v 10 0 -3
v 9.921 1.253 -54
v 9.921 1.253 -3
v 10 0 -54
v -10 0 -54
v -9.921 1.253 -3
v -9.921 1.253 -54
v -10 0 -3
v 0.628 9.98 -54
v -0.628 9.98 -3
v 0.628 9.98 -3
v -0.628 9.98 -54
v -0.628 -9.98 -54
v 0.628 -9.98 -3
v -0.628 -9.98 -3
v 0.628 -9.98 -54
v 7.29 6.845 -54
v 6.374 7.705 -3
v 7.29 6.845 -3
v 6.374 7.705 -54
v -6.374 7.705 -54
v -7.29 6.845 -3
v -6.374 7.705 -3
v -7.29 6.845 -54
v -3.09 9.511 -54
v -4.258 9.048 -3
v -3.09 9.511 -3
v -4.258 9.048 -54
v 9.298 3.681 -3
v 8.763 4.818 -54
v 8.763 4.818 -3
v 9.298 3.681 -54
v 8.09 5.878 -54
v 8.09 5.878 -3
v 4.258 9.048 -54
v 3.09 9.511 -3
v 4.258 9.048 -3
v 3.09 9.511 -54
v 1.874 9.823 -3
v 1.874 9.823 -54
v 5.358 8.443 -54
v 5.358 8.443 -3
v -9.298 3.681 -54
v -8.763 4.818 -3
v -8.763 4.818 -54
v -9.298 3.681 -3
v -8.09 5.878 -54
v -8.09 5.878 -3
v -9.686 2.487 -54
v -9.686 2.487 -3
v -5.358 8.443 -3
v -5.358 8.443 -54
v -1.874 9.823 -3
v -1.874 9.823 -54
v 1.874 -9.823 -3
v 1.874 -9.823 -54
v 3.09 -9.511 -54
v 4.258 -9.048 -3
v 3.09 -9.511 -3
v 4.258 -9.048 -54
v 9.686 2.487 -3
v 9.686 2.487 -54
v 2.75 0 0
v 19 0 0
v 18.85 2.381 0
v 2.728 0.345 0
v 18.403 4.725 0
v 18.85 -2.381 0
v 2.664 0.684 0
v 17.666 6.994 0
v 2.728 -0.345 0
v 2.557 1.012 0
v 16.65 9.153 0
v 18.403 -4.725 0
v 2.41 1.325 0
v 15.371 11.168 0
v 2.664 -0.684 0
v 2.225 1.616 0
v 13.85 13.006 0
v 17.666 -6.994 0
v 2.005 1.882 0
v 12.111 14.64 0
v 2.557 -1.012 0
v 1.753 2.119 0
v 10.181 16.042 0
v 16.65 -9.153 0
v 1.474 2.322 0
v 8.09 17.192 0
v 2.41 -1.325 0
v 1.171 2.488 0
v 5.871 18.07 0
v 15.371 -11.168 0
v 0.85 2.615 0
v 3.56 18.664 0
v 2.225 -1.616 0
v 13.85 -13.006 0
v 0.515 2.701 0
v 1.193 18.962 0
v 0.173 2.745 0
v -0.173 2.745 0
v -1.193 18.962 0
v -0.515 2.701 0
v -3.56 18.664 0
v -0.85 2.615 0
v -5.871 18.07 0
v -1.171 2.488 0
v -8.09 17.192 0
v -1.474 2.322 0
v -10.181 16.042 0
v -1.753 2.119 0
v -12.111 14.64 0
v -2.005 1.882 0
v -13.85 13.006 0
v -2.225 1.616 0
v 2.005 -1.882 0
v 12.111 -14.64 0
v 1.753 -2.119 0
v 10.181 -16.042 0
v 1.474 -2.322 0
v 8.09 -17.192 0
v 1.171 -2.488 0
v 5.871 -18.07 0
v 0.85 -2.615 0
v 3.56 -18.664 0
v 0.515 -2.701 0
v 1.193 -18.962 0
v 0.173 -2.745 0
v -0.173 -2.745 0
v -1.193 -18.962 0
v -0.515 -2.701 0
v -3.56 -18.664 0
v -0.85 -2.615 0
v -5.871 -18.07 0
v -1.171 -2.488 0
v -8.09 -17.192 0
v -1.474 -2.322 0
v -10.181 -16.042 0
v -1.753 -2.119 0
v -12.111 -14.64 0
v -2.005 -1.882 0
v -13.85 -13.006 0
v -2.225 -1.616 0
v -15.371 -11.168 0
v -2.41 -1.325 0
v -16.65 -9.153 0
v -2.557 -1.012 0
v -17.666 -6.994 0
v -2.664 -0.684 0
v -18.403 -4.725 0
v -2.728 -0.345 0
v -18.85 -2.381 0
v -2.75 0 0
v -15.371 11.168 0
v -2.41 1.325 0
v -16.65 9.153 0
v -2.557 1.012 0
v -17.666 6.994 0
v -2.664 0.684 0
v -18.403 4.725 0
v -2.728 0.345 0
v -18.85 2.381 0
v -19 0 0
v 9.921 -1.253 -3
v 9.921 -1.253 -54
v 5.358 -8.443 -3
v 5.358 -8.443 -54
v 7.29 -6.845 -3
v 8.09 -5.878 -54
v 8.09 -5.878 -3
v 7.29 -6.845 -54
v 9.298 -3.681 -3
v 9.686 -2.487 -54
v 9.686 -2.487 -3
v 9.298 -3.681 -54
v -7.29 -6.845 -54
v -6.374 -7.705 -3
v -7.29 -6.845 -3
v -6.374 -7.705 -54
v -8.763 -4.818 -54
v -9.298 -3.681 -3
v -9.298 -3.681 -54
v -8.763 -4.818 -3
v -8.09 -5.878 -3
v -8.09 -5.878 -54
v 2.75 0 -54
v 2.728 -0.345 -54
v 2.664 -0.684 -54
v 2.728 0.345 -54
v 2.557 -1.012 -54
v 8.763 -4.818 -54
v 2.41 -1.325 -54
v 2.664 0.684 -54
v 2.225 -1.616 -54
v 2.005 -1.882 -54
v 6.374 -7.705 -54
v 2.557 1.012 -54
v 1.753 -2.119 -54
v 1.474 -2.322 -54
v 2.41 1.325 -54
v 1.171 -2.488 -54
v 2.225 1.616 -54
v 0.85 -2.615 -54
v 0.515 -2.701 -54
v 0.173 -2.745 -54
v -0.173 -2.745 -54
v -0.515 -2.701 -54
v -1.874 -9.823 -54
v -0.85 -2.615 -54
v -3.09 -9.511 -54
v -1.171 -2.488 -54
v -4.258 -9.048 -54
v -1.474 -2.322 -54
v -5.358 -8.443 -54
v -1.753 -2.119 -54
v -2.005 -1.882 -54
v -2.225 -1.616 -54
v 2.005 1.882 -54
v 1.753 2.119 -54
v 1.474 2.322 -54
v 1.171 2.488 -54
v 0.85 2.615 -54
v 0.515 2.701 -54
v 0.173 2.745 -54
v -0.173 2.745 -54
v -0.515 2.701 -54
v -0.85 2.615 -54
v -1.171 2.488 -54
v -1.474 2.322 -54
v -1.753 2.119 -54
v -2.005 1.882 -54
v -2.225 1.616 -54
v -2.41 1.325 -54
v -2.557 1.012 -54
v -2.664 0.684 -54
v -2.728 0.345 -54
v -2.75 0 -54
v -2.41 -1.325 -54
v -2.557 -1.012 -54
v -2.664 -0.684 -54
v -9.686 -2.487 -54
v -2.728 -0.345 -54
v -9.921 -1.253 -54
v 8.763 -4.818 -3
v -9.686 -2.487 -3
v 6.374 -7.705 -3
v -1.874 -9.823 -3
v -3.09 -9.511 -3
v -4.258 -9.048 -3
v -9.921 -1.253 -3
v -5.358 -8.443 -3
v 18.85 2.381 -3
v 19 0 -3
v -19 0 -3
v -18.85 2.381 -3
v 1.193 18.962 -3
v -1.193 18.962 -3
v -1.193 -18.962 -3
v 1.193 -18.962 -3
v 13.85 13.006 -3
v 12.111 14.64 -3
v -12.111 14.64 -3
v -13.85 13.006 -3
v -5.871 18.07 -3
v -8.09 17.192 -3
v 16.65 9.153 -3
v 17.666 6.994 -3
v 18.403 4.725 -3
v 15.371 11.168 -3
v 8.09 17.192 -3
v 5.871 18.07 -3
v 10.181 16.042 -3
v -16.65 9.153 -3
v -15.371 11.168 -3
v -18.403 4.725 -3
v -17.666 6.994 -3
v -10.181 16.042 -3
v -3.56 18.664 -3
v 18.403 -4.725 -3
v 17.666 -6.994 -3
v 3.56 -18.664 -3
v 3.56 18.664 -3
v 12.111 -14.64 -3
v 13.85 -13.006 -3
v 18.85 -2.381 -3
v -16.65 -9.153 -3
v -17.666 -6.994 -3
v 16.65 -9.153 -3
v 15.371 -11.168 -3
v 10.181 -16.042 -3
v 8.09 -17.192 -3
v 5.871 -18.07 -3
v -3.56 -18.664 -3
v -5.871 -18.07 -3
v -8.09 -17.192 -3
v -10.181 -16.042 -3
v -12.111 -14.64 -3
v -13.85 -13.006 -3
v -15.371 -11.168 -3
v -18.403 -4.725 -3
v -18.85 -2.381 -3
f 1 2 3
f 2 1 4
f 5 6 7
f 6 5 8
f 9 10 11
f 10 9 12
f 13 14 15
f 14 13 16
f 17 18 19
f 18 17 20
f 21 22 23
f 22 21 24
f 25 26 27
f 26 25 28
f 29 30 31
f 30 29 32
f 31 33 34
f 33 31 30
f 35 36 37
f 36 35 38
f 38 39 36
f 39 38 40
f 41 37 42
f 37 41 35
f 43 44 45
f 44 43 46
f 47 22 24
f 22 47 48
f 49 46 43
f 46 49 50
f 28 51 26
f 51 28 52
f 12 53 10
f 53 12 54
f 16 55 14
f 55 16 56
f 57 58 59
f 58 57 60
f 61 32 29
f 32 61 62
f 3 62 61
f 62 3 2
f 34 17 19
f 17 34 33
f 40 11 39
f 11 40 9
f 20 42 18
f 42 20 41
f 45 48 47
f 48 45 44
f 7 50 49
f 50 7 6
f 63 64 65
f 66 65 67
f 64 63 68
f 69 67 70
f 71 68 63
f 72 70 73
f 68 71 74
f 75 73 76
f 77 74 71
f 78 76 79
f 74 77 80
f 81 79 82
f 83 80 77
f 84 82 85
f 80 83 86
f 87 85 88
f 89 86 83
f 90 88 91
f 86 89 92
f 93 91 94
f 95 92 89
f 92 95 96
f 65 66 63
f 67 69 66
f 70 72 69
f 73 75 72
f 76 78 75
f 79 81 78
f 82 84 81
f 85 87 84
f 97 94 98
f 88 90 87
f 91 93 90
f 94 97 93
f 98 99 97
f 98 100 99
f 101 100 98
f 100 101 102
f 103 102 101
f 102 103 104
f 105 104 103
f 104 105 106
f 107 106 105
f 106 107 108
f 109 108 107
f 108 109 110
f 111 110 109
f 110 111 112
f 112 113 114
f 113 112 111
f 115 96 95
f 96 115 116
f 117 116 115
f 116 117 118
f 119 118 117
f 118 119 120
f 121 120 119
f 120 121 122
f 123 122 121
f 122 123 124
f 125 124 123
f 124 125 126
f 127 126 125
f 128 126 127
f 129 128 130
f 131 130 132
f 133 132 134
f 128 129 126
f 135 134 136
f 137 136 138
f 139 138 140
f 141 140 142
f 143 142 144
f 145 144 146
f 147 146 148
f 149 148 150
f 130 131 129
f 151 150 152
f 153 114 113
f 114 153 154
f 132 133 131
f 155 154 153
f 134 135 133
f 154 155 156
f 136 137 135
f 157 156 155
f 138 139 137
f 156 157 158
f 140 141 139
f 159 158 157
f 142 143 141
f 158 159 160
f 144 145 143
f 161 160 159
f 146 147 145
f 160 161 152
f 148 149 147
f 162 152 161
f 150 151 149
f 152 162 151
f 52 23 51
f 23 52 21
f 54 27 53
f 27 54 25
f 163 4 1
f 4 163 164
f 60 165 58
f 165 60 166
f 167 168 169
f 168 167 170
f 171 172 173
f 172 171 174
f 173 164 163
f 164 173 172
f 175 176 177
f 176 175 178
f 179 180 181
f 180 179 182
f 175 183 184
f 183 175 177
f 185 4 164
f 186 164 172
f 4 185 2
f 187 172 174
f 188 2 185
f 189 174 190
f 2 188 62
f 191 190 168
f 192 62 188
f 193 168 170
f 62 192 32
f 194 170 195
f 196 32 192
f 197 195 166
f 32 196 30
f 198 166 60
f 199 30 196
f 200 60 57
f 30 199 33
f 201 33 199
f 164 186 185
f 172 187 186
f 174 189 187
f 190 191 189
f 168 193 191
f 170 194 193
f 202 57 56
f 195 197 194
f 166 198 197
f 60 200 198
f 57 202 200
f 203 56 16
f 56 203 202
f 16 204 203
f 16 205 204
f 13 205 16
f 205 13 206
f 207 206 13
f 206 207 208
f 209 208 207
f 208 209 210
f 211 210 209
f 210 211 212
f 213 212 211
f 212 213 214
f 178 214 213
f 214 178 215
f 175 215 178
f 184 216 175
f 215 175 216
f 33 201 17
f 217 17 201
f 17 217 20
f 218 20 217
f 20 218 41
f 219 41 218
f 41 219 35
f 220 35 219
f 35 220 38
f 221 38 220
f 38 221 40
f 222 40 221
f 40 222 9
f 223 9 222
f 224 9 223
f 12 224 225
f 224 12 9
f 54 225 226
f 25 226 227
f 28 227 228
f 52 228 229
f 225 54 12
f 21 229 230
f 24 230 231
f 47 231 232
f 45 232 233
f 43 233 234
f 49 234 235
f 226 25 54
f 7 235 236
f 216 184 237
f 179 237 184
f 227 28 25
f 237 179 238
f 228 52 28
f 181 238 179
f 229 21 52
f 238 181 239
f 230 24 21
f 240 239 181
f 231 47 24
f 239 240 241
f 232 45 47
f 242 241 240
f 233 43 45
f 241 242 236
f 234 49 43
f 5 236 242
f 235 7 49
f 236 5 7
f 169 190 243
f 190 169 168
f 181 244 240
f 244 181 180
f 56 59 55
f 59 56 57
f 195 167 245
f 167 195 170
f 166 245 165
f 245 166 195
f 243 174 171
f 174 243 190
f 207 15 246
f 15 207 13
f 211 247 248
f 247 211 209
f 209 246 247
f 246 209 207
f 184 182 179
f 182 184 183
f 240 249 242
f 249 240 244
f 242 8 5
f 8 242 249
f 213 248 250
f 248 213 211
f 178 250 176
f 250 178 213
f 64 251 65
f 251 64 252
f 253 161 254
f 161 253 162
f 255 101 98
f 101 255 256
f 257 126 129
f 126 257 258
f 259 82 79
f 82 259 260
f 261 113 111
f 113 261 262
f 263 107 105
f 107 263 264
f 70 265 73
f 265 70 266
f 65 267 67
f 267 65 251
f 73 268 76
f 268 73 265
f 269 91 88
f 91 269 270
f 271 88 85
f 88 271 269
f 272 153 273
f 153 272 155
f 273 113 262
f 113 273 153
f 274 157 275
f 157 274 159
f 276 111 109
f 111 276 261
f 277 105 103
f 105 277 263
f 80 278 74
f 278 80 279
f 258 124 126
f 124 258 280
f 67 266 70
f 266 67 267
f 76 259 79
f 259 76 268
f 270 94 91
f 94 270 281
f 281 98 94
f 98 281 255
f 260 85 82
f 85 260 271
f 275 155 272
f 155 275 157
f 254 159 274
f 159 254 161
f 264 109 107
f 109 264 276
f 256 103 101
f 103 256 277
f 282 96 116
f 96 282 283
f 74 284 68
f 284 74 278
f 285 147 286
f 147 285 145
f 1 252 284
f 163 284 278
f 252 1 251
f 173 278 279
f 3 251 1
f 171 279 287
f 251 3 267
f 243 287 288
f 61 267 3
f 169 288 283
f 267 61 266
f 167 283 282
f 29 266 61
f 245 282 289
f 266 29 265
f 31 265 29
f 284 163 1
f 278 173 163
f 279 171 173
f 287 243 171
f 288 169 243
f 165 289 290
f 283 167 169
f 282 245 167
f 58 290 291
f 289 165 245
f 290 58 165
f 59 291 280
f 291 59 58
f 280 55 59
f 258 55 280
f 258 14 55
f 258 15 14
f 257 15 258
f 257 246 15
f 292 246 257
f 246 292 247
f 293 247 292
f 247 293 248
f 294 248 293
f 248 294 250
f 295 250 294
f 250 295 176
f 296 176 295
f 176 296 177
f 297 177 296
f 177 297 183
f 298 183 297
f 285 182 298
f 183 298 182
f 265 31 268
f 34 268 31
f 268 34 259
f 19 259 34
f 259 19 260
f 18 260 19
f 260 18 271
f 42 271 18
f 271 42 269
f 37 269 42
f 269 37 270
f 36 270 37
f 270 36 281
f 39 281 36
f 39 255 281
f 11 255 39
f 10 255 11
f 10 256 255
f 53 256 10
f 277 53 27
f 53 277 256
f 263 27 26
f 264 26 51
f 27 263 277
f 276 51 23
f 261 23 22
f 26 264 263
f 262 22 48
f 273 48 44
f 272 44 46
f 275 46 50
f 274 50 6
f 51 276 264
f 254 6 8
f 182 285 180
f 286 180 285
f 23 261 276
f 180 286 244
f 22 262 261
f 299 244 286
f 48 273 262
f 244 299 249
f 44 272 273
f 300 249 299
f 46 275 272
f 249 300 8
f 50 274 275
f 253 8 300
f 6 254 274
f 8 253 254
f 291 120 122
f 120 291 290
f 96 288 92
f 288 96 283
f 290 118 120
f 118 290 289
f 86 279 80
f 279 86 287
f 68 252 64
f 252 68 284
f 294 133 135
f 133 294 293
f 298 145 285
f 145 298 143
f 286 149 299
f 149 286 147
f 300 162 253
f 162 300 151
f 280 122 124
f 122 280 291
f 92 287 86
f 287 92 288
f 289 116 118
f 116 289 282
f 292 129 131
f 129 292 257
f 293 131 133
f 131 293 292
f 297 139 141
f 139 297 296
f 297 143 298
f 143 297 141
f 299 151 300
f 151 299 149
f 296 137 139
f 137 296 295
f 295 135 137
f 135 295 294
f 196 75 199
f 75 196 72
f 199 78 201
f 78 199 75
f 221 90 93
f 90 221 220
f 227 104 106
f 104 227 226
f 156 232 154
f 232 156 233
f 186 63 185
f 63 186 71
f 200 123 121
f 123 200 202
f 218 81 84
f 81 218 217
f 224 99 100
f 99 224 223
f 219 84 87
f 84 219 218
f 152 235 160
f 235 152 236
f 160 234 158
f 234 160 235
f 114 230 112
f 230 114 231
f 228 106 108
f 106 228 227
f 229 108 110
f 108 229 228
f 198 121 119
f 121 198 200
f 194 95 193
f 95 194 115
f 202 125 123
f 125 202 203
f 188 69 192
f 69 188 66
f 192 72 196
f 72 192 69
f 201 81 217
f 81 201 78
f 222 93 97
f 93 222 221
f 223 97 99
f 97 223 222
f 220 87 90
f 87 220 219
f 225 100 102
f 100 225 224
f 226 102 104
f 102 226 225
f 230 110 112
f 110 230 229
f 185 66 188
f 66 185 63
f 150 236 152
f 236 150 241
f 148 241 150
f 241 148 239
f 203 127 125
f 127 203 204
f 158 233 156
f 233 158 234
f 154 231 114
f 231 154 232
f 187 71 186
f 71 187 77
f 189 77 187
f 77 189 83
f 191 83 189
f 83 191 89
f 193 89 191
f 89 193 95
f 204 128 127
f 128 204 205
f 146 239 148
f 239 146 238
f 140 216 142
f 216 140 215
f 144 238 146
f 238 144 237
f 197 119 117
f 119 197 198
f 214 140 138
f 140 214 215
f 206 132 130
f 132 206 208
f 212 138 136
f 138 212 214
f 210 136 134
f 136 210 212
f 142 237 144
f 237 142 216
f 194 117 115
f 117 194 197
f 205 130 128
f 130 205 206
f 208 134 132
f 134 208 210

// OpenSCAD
$fn = 50;


difference() {
	union() {
		translate(v = [0, 0, -54.0000000000]) {
			cylinder(h = 54, r = 10.0000000000);
		}
		translate(v = [0, 0, -3.0000000000]) {
			cylinder(h = 3, r = 19.0000000000);
		}
	}
	union() {
		#translate(v = [0, 0, -54]) {
			cylinder(h = 54, r = 2.7500000000);
		}
	}
}
